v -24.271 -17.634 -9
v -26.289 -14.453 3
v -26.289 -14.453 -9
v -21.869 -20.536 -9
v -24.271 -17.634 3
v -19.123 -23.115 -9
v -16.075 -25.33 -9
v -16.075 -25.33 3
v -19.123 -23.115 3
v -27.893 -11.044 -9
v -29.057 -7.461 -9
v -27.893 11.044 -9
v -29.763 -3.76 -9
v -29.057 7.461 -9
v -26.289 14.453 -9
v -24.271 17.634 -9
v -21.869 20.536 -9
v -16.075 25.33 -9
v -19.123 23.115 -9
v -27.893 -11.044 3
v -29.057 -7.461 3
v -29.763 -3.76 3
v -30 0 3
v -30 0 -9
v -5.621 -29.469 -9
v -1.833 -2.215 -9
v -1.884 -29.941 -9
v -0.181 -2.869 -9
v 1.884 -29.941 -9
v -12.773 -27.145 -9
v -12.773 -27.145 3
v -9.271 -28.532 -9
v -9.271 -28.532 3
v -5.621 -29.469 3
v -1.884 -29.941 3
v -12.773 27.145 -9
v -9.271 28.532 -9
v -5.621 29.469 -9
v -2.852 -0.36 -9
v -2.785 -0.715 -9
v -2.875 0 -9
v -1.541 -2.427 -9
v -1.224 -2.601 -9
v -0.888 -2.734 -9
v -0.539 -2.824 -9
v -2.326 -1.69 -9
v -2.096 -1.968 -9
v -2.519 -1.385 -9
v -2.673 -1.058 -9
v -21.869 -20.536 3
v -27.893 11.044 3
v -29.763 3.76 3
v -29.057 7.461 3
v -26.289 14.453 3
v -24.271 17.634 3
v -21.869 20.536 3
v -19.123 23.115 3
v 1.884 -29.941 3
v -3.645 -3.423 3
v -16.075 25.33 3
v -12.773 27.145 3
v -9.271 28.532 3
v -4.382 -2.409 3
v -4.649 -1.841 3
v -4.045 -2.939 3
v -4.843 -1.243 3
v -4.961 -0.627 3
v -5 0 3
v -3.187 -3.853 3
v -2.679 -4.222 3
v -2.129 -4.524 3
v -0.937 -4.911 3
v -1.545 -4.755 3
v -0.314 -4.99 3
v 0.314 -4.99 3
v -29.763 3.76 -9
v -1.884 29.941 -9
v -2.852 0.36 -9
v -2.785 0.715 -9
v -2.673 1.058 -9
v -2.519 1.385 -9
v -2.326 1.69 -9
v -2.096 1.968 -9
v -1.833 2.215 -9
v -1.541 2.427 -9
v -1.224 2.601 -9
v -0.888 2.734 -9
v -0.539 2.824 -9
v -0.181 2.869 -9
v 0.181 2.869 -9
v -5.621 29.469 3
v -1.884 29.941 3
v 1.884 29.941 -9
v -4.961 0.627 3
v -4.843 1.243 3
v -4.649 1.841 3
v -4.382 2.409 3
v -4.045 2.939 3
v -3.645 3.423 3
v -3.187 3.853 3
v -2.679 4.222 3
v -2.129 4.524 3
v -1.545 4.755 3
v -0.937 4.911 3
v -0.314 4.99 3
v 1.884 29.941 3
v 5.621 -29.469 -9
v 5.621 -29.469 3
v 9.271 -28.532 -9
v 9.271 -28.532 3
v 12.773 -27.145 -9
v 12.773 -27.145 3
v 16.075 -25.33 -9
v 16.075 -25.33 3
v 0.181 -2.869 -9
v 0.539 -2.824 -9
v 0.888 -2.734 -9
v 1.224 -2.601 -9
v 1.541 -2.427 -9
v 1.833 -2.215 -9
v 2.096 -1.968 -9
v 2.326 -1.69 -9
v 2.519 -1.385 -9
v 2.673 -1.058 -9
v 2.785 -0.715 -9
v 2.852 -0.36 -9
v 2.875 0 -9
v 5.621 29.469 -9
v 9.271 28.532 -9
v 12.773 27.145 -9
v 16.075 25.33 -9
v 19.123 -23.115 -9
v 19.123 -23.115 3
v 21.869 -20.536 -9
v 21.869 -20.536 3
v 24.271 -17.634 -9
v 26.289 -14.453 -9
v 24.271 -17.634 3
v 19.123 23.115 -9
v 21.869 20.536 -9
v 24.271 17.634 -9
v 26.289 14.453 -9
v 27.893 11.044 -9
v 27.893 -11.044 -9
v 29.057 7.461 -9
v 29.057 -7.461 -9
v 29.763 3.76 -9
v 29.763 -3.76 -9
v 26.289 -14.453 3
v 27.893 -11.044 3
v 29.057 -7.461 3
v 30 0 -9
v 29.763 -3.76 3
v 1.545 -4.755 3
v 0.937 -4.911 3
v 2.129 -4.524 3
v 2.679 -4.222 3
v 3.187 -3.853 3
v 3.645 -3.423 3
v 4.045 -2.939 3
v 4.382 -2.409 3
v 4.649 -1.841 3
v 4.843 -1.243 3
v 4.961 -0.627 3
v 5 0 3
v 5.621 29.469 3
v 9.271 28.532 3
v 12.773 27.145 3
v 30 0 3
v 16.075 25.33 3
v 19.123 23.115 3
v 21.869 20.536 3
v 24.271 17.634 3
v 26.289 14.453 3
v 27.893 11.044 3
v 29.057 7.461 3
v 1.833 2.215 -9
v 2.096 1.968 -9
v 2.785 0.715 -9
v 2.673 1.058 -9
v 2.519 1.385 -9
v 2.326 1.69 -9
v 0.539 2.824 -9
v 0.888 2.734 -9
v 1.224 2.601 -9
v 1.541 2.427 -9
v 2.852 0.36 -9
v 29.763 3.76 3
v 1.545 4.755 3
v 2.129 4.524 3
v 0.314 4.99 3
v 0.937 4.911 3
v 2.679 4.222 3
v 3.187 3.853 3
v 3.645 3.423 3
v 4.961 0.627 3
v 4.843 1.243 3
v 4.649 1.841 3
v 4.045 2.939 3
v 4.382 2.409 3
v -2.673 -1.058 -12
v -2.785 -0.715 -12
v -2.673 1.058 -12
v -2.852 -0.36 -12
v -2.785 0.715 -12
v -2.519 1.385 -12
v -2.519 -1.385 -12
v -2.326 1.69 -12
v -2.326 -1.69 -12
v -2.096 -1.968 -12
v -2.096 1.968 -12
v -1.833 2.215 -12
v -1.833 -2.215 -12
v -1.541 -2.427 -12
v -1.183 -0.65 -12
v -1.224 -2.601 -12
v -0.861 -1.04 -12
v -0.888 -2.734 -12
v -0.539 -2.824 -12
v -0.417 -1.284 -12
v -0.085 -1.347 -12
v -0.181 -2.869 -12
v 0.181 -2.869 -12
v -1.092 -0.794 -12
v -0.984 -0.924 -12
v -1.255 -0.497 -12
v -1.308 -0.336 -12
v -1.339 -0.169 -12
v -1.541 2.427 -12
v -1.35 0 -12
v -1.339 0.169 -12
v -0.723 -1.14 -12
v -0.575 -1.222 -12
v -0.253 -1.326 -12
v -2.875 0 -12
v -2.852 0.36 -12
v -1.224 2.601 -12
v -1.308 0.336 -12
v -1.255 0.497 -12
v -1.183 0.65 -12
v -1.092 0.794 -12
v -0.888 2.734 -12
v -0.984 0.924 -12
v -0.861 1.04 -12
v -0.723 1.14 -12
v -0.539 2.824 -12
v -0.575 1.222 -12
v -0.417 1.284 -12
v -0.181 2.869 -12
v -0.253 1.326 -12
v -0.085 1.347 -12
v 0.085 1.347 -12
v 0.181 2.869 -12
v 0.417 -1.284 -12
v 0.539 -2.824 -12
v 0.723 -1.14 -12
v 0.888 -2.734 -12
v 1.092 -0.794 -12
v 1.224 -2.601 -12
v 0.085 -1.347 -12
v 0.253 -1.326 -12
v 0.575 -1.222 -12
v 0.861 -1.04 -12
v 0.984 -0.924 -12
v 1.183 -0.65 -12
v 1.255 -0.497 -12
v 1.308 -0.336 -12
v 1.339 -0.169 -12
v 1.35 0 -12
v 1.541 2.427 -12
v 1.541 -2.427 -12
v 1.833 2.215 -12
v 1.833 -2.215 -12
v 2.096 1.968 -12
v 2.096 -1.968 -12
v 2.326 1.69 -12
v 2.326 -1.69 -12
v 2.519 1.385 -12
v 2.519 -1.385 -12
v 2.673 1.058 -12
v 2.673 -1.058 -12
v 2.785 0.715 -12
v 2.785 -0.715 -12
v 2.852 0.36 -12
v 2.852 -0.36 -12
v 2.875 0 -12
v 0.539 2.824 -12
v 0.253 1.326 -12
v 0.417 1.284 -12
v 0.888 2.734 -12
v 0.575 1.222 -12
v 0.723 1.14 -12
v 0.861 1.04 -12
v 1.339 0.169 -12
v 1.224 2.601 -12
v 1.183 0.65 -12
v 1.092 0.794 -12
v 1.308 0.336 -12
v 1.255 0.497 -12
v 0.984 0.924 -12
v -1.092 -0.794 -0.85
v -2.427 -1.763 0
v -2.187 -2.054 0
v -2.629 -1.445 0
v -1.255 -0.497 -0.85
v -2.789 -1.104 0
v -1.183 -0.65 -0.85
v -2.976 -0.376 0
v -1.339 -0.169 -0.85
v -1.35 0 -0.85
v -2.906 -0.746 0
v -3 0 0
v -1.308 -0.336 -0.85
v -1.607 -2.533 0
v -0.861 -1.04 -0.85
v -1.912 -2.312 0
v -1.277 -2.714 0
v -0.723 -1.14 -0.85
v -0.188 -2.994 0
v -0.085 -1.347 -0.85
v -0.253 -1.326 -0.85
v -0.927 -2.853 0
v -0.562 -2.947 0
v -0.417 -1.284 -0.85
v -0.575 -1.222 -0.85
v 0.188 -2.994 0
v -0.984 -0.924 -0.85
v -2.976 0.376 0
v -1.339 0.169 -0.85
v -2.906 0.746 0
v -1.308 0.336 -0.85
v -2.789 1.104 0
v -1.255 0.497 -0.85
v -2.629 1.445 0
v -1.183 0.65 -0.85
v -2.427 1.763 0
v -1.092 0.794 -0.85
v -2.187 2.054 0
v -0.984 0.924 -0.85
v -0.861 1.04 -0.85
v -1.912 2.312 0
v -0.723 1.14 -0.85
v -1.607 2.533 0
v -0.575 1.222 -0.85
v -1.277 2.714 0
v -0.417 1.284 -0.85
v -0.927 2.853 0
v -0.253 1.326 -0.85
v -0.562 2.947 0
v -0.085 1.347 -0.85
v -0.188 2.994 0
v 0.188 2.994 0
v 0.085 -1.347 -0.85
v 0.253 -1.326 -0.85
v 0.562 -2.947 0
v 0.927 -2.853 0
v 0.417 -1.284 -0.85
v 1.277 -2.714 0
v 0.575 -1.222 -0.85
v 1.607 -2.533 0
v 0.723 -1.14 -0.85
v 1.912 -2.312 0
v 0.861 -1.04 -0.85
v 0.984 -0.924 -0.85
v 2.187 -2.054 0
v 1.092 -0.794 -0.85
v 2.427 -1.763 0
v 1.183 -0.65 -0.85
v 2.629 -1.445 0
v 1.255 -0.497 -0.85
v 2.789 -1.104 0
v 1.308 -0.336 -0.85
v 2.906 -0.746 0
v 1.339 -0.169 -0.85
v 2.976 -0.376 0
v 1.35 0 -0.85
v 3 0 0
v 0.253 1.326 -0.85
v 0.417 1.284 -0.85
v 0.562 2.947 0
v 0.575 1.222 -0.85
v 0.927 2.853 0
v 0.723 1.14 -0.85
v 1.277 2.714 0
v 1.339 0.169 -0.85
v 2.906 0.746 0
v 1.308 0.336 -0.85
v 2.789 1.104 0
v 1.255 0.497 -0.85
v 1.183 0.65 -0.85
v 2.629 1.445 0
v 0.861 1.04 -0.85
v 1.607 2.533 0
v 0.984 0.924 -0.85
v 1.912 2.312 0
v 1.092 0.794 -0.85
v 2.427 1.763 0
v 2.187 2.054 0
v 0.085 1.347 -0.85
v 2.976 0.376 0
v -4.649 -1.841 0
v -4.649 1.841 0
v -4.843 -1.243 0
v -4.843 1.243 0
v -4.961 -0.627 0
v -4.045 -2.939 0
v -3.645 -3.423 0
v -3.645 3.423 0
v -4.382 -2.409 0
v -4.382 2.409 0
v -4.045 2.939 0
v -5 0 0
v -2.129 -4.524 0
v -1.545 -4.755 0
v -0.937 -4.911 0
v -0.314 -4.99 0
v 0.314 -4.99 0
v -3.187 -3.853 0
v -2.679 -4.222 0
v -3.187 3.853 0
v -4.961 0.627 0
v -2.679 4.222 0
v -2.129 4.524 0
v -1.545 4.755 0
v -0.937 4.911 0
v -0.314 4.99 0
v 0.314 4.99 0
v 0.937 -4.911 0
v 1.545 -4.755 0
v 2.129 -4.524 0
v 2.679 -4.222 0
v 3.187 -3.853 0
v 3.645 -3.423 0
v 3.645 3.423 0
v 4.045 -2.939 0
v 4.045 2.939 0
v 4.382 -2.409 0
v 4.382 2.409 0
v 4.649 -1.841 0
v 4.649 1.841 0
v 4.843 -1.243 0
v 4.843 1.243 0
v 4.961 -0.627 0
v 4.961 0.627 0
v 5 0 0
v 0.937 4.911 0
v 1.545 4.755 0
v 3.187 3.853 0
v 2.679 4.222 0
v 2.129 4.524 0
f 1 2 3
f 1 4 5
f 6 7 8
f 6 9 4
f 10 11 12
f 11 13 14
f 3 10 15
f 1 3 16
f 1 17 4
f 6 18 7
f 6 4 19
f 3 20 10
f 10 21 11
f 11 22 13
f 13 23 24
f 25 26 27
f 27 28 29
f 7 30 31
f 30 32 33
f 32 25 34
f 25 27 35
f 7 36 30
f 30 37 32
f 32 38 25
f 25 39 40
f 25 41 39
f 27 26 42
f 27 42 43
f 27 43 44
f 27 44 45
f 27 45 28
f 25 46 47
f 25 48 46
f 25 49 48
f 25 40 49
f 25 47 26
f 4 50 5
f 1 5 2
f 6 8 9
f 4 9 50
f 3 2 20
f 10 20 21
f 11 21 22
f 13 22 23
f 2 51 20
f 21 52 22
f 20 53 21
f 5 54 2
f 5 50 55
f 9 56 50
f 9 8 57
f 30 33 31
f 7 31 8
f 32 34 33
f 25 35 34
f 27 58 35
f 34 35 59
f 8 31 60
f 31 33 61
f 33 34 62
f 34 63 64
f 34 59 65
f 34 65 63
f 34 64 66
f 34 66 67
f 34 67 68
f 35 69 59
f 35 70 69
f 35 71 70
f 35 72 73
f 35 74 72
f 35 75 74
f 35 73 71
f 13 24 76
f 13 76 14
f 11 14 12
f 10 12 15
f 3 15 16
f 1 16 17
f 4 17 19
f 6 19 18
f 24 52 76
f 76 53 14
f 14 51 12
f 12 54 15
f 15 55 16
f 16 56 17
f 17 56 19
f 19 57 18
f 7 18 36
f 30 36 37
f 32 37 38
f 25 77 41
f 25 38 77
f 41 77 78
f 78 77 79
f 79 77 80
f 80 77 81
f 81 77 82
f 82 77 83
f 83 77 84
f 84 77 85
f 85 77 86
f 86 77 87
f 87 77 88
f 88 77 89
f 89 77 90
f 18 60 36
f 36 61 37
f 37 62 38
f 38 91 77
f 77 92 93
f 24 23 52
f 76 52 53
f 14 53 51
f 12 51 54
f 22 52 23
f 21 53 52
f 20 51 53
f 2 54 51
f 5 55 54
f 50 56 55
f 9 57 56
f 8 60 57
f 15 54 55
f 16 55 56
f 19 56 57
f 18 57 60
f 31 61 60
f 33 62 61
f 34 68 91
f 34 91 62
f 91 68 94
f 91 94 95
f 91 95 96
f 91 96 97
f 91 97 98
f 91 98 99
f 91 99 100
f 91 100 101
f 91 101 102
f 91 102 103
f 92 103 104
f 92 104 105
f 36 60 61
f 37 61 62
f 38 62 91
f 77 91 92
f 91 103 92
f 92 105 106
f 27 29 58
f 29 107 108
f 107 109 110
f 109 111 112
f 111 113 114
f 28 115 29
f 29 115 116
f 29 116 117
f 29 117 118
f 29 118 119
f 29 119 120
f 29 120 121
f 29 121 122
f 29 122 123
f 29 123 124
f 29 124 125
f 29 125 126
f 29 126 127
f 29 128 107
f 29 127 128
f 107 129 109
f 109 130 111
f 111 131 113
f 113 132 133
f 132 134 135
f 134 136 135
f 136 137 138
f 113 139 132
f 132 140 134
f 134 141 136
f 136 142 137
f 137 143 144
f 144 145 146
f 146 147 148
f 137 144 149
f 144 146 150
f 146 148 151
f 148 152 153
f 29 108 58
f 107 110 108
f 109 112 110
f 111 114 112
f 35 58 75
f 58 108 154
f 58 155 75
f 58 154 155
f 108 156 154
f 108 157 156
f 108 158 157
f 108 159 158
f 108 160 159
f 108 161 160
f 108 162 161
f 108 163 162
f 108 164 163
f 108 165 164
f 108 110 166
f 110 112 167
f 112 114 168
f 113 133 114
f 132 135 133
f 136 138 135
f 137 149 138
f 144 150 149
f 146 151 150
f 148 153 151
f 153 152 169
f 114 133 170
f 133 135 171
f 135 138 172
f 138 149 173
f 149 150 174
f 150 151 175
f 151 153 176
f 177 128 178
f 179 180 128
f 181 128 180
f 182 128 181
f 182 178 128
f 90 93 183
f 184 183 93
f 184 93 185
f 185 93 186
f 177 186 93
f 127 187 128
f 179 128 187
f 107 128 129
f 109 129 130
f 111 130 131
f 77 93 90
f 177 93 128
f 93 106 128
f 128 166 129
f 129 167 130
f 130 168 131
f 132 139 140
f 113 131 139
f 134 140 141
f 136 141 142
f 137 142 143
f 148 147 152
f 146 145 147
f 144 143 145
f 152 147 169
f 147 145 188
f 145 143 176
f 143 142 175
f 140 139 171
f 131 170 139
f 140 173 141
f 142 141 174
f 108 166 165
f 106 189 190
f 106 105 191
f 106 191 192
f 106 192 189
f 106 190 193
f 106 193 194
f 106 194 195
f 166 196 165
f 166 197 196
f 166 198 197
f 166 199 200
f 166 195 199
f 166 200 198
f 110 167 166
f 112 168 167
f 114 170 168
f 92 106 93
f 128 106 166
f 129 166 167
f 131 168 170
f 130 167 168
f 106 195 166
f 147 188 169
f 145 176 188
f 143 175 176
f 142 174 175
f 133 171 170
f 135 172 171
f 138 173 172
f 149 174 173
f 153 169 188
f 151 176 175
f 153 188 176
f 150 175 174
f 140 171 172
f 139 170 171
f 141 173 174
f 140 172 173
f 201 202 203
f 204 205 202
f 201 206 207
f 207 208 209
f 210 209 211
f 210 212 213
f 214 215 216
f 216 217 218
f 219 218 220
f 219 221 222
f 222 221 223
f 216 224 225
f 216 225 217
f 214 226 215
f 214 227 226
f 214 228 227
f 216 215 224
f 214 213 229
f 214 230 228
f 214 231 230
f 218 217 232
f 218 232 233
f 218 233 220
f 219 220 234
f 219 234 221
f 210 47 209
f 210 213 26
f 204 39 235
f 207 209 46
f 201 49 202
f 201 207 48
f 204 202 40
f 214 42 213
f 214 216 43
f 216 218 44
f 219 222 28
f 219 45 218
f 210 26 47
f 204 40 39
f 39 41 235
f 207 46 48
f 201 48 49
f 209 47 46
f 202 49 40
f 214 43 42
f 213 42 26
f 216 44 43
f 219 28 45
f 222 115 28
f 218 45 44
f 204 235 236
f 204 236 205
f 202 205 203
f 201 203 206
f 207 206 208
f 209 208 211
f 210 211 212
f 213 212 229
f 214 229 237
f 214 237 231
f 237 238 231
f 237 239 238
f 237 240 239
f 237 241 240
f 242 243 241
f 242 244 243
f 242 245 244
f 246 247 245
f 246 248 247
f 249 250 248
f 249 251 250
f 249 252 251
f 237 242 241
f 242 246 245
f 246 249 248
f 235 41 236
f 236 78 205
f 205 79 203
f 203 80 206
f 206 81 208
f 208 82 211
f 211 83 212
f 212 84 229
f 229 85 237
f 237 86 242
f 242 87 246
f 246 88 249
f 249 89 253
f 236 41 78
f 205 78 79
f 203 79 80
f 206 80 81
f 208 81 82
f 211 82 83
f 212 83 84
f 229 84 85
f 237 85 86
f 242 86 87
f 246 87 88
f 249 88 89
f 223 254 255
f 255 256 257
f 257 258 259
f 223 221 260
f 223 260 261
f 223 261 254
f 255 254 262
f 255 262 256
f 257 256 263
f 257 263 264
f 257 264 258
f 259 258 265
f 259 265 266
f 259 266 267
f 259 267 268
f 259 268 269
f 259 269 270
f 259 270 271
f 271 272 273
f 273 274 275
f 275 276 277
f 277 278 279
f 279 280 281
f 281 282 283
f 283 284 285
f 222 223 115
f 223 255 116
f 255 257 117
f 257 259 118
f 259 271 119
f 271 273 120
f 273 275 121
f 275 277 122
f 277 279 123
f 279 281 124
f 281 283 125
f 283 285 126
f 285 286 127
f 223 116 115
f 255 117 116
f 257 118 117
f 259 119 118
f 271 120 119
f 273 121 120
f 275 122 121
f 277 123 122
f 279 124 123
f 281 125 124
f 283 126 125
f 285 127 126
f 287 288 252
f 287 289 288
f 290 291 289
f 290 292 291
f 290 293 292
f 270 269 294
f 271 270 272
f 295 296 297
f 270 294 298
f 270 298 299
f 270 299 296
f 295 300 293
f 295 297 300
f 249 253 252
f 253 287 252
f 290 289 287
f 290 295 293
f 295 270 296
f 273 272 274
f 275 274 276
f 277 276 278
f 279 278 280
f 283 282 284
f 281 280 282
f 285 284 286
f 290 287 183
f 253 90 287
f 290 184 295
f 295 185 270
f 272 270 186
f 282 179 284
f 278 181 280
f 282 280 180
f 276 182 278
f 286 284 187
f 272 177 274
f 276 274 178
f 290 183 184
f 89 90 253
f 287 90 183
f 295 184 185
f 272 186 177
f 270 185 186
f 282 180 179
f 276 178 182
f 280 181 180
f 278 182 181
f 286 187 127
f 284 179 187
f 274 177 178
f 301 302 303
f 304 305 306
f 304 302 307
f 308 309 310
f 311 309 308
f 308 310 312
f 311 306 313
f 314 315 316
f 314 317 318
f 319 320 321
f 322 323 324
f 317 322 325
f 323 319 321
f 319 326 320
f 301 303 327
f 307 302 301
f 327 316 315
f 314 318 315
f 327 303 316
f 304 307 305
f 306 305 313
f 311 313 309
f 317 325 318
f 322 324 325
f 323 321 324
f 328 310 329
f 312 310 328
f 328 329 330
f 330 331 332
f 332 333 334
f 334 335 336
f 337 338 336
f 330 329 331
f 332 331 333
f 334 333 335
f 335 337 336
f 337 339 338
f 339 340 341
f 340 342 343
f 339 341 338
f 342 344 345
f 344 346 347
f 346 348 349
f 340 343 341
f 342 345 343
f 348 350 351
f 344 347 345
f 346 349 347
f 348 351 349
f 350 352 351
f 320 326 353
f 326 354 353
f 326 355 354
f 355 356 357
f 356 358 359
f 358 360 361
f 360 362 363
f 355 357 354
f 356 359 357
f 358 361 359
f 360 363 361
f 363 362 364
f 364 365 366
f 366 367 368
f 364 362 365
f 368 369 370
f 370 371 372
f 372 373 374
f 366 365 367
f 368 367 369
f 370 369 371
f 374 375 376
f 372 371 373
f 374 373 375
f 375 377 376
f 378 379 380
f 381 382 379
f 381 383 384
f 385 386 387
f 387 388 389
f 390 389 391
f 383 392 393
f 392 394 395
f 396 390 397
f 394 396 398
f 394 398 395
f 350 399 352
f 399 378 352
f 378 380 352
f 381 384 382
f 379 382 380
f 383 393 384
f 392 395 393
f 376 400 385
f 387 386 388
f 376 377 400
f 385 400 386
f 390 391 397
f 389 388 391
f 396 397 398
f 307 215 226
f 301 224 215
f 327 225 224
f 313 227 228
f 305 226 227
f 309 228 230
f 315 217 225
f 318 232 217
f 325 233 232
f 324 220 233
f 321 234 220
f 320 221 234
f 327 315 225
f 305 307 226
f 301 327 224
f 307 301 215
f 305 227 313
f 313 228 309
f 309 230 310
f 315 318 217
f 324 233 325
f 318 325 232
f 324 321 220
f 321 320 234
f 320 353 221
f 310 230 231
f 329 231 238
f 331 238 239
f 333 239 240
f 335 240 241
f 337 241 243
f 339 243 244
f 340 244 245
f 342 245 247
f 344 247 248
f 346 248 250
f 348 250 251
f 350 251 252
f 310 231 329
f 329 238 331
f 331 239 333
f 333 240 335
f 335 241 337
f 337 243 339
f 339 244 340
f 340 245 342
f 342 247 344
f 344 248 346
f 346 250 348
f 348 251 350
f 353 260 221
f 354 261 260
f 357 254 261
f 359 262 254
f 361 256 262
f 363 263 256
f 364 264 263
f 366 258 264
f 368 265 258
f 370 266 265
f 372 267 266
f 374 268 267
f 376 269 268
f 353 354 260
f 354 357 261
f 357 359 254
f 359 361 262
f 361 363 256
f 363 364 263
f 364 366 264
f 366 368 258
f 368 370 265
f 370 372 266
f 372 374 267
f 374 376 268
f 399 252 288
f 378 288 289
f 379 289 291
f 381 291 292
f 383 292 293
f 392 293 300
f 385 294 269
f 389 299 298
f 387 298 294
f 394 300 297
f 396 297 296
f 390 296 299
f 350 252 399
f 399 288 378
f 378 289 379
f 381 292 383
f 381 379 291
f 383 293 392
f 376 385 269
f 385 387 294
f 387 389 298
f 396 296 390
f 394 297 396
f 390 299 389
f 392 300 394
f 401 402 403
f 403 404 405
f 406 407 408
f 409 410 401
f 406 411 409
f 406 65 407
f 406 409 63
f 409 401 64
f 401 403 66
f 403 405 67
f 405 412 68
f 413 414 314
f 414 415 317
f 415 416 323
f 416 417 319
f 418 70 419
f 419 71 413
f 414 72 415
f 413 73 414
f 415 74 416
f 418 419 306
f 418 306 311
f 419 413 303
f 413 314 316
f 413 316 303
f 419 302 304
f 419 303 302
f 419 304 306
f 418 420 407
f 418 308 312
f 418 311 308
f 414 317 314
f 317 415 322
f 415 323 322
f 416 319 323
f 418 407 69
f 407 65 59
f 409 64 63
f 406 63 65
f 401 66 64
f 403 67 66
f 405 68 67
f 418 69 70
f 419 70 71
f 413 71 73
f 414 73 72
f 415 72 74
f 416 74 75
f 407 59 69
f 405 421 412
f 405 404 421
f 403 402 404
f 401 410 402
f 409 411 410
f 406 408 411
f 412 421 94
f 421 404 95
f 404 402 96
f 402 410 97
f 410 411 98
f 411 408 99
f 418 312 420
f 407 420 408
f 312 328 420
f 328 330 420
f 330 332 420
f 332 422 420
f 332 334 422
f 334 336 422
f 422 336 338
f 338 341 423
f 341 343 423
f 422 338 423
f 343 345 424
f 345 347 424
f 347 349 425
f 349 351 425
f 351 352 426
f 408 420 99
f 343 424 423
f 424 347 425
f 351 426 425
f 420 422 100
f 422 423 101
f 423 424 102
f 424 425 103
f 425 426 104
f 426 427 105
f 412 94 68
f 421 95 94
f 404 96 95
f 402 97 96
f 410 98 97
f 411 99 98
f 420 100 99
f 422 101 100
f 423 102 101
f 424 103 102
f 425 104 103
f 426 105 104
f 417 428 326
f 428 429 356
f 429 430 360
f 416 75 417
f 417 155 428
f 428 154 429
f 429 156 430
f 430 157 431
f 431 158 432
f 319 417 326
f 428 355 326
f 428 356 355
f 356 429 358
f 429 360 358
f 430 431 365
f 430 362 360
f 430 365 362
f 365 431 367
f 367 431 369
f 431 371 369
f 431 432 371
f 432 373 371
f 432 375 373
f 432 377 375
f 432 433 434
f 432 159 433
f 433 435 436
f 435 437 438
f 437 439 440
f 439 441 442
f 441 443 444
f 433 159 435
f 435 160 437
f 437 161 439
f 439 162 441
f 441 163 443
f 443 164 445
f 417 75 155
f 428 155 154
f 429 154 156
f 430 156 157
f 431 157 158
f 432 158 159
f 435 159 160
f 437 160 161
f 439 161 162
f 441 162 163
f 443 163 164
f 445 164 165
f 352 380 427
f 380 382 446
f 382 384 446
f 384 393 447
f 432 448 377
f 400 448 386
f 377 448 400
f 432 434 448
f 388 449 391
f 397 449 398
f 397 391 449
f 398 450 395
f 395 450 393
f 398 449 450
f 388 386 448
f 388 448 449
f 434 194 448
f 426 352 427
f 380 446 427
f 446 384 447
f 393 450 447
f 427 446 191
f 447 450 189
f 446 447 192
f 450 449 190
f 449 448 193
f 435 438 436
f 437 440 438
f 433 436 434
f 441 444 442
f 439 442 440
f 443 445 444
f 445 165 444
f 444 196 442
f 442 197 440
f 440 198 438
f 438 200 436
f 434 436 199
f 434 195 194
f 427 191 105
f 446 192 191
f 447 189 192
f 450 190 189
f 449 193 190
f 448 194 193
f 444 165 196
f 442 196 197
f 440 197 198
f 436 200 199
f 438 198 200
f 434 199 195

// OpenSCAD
$fn = 50;


difference() {
	union() {
		translate(v = [0, 0, -9.0000000000]) {
			cylinder(h = 12, r = 30.0000000000);
		}
		#translate(v = [0, 0, -12.0000000000]) {
			cylinder(h = 12, r = 2.8750000000);
		}
	}
	union() {
		translate(v = [0, 0, 0]) {
			rotate(a = [0, 0, 0]) {
				difference() {
					union() {
						translate(v = [0, 0, -12.0000000000]) {
							cylinder(h = 12, r = 1.0000000000);
						}
						translate(v = [0, 0, -0.8500000000]) {
							cylinder(h = 0.8500000000, r1 = 1.3500000000, r2 = 3.0000000000);
						}
						translate(v = [0, 0, -12.0000000000]) {
							cylinder(h = 12, r = 1.3500000000);
						}
						translate(v = [0, 0, -12.0000000000]) {
							cylinder(h = 12, r = 1.0000000000);
						}
					}
					union();
				}
			}
		}
		#cylinder(h = 3, r = 5.0000000000);
	}
}
